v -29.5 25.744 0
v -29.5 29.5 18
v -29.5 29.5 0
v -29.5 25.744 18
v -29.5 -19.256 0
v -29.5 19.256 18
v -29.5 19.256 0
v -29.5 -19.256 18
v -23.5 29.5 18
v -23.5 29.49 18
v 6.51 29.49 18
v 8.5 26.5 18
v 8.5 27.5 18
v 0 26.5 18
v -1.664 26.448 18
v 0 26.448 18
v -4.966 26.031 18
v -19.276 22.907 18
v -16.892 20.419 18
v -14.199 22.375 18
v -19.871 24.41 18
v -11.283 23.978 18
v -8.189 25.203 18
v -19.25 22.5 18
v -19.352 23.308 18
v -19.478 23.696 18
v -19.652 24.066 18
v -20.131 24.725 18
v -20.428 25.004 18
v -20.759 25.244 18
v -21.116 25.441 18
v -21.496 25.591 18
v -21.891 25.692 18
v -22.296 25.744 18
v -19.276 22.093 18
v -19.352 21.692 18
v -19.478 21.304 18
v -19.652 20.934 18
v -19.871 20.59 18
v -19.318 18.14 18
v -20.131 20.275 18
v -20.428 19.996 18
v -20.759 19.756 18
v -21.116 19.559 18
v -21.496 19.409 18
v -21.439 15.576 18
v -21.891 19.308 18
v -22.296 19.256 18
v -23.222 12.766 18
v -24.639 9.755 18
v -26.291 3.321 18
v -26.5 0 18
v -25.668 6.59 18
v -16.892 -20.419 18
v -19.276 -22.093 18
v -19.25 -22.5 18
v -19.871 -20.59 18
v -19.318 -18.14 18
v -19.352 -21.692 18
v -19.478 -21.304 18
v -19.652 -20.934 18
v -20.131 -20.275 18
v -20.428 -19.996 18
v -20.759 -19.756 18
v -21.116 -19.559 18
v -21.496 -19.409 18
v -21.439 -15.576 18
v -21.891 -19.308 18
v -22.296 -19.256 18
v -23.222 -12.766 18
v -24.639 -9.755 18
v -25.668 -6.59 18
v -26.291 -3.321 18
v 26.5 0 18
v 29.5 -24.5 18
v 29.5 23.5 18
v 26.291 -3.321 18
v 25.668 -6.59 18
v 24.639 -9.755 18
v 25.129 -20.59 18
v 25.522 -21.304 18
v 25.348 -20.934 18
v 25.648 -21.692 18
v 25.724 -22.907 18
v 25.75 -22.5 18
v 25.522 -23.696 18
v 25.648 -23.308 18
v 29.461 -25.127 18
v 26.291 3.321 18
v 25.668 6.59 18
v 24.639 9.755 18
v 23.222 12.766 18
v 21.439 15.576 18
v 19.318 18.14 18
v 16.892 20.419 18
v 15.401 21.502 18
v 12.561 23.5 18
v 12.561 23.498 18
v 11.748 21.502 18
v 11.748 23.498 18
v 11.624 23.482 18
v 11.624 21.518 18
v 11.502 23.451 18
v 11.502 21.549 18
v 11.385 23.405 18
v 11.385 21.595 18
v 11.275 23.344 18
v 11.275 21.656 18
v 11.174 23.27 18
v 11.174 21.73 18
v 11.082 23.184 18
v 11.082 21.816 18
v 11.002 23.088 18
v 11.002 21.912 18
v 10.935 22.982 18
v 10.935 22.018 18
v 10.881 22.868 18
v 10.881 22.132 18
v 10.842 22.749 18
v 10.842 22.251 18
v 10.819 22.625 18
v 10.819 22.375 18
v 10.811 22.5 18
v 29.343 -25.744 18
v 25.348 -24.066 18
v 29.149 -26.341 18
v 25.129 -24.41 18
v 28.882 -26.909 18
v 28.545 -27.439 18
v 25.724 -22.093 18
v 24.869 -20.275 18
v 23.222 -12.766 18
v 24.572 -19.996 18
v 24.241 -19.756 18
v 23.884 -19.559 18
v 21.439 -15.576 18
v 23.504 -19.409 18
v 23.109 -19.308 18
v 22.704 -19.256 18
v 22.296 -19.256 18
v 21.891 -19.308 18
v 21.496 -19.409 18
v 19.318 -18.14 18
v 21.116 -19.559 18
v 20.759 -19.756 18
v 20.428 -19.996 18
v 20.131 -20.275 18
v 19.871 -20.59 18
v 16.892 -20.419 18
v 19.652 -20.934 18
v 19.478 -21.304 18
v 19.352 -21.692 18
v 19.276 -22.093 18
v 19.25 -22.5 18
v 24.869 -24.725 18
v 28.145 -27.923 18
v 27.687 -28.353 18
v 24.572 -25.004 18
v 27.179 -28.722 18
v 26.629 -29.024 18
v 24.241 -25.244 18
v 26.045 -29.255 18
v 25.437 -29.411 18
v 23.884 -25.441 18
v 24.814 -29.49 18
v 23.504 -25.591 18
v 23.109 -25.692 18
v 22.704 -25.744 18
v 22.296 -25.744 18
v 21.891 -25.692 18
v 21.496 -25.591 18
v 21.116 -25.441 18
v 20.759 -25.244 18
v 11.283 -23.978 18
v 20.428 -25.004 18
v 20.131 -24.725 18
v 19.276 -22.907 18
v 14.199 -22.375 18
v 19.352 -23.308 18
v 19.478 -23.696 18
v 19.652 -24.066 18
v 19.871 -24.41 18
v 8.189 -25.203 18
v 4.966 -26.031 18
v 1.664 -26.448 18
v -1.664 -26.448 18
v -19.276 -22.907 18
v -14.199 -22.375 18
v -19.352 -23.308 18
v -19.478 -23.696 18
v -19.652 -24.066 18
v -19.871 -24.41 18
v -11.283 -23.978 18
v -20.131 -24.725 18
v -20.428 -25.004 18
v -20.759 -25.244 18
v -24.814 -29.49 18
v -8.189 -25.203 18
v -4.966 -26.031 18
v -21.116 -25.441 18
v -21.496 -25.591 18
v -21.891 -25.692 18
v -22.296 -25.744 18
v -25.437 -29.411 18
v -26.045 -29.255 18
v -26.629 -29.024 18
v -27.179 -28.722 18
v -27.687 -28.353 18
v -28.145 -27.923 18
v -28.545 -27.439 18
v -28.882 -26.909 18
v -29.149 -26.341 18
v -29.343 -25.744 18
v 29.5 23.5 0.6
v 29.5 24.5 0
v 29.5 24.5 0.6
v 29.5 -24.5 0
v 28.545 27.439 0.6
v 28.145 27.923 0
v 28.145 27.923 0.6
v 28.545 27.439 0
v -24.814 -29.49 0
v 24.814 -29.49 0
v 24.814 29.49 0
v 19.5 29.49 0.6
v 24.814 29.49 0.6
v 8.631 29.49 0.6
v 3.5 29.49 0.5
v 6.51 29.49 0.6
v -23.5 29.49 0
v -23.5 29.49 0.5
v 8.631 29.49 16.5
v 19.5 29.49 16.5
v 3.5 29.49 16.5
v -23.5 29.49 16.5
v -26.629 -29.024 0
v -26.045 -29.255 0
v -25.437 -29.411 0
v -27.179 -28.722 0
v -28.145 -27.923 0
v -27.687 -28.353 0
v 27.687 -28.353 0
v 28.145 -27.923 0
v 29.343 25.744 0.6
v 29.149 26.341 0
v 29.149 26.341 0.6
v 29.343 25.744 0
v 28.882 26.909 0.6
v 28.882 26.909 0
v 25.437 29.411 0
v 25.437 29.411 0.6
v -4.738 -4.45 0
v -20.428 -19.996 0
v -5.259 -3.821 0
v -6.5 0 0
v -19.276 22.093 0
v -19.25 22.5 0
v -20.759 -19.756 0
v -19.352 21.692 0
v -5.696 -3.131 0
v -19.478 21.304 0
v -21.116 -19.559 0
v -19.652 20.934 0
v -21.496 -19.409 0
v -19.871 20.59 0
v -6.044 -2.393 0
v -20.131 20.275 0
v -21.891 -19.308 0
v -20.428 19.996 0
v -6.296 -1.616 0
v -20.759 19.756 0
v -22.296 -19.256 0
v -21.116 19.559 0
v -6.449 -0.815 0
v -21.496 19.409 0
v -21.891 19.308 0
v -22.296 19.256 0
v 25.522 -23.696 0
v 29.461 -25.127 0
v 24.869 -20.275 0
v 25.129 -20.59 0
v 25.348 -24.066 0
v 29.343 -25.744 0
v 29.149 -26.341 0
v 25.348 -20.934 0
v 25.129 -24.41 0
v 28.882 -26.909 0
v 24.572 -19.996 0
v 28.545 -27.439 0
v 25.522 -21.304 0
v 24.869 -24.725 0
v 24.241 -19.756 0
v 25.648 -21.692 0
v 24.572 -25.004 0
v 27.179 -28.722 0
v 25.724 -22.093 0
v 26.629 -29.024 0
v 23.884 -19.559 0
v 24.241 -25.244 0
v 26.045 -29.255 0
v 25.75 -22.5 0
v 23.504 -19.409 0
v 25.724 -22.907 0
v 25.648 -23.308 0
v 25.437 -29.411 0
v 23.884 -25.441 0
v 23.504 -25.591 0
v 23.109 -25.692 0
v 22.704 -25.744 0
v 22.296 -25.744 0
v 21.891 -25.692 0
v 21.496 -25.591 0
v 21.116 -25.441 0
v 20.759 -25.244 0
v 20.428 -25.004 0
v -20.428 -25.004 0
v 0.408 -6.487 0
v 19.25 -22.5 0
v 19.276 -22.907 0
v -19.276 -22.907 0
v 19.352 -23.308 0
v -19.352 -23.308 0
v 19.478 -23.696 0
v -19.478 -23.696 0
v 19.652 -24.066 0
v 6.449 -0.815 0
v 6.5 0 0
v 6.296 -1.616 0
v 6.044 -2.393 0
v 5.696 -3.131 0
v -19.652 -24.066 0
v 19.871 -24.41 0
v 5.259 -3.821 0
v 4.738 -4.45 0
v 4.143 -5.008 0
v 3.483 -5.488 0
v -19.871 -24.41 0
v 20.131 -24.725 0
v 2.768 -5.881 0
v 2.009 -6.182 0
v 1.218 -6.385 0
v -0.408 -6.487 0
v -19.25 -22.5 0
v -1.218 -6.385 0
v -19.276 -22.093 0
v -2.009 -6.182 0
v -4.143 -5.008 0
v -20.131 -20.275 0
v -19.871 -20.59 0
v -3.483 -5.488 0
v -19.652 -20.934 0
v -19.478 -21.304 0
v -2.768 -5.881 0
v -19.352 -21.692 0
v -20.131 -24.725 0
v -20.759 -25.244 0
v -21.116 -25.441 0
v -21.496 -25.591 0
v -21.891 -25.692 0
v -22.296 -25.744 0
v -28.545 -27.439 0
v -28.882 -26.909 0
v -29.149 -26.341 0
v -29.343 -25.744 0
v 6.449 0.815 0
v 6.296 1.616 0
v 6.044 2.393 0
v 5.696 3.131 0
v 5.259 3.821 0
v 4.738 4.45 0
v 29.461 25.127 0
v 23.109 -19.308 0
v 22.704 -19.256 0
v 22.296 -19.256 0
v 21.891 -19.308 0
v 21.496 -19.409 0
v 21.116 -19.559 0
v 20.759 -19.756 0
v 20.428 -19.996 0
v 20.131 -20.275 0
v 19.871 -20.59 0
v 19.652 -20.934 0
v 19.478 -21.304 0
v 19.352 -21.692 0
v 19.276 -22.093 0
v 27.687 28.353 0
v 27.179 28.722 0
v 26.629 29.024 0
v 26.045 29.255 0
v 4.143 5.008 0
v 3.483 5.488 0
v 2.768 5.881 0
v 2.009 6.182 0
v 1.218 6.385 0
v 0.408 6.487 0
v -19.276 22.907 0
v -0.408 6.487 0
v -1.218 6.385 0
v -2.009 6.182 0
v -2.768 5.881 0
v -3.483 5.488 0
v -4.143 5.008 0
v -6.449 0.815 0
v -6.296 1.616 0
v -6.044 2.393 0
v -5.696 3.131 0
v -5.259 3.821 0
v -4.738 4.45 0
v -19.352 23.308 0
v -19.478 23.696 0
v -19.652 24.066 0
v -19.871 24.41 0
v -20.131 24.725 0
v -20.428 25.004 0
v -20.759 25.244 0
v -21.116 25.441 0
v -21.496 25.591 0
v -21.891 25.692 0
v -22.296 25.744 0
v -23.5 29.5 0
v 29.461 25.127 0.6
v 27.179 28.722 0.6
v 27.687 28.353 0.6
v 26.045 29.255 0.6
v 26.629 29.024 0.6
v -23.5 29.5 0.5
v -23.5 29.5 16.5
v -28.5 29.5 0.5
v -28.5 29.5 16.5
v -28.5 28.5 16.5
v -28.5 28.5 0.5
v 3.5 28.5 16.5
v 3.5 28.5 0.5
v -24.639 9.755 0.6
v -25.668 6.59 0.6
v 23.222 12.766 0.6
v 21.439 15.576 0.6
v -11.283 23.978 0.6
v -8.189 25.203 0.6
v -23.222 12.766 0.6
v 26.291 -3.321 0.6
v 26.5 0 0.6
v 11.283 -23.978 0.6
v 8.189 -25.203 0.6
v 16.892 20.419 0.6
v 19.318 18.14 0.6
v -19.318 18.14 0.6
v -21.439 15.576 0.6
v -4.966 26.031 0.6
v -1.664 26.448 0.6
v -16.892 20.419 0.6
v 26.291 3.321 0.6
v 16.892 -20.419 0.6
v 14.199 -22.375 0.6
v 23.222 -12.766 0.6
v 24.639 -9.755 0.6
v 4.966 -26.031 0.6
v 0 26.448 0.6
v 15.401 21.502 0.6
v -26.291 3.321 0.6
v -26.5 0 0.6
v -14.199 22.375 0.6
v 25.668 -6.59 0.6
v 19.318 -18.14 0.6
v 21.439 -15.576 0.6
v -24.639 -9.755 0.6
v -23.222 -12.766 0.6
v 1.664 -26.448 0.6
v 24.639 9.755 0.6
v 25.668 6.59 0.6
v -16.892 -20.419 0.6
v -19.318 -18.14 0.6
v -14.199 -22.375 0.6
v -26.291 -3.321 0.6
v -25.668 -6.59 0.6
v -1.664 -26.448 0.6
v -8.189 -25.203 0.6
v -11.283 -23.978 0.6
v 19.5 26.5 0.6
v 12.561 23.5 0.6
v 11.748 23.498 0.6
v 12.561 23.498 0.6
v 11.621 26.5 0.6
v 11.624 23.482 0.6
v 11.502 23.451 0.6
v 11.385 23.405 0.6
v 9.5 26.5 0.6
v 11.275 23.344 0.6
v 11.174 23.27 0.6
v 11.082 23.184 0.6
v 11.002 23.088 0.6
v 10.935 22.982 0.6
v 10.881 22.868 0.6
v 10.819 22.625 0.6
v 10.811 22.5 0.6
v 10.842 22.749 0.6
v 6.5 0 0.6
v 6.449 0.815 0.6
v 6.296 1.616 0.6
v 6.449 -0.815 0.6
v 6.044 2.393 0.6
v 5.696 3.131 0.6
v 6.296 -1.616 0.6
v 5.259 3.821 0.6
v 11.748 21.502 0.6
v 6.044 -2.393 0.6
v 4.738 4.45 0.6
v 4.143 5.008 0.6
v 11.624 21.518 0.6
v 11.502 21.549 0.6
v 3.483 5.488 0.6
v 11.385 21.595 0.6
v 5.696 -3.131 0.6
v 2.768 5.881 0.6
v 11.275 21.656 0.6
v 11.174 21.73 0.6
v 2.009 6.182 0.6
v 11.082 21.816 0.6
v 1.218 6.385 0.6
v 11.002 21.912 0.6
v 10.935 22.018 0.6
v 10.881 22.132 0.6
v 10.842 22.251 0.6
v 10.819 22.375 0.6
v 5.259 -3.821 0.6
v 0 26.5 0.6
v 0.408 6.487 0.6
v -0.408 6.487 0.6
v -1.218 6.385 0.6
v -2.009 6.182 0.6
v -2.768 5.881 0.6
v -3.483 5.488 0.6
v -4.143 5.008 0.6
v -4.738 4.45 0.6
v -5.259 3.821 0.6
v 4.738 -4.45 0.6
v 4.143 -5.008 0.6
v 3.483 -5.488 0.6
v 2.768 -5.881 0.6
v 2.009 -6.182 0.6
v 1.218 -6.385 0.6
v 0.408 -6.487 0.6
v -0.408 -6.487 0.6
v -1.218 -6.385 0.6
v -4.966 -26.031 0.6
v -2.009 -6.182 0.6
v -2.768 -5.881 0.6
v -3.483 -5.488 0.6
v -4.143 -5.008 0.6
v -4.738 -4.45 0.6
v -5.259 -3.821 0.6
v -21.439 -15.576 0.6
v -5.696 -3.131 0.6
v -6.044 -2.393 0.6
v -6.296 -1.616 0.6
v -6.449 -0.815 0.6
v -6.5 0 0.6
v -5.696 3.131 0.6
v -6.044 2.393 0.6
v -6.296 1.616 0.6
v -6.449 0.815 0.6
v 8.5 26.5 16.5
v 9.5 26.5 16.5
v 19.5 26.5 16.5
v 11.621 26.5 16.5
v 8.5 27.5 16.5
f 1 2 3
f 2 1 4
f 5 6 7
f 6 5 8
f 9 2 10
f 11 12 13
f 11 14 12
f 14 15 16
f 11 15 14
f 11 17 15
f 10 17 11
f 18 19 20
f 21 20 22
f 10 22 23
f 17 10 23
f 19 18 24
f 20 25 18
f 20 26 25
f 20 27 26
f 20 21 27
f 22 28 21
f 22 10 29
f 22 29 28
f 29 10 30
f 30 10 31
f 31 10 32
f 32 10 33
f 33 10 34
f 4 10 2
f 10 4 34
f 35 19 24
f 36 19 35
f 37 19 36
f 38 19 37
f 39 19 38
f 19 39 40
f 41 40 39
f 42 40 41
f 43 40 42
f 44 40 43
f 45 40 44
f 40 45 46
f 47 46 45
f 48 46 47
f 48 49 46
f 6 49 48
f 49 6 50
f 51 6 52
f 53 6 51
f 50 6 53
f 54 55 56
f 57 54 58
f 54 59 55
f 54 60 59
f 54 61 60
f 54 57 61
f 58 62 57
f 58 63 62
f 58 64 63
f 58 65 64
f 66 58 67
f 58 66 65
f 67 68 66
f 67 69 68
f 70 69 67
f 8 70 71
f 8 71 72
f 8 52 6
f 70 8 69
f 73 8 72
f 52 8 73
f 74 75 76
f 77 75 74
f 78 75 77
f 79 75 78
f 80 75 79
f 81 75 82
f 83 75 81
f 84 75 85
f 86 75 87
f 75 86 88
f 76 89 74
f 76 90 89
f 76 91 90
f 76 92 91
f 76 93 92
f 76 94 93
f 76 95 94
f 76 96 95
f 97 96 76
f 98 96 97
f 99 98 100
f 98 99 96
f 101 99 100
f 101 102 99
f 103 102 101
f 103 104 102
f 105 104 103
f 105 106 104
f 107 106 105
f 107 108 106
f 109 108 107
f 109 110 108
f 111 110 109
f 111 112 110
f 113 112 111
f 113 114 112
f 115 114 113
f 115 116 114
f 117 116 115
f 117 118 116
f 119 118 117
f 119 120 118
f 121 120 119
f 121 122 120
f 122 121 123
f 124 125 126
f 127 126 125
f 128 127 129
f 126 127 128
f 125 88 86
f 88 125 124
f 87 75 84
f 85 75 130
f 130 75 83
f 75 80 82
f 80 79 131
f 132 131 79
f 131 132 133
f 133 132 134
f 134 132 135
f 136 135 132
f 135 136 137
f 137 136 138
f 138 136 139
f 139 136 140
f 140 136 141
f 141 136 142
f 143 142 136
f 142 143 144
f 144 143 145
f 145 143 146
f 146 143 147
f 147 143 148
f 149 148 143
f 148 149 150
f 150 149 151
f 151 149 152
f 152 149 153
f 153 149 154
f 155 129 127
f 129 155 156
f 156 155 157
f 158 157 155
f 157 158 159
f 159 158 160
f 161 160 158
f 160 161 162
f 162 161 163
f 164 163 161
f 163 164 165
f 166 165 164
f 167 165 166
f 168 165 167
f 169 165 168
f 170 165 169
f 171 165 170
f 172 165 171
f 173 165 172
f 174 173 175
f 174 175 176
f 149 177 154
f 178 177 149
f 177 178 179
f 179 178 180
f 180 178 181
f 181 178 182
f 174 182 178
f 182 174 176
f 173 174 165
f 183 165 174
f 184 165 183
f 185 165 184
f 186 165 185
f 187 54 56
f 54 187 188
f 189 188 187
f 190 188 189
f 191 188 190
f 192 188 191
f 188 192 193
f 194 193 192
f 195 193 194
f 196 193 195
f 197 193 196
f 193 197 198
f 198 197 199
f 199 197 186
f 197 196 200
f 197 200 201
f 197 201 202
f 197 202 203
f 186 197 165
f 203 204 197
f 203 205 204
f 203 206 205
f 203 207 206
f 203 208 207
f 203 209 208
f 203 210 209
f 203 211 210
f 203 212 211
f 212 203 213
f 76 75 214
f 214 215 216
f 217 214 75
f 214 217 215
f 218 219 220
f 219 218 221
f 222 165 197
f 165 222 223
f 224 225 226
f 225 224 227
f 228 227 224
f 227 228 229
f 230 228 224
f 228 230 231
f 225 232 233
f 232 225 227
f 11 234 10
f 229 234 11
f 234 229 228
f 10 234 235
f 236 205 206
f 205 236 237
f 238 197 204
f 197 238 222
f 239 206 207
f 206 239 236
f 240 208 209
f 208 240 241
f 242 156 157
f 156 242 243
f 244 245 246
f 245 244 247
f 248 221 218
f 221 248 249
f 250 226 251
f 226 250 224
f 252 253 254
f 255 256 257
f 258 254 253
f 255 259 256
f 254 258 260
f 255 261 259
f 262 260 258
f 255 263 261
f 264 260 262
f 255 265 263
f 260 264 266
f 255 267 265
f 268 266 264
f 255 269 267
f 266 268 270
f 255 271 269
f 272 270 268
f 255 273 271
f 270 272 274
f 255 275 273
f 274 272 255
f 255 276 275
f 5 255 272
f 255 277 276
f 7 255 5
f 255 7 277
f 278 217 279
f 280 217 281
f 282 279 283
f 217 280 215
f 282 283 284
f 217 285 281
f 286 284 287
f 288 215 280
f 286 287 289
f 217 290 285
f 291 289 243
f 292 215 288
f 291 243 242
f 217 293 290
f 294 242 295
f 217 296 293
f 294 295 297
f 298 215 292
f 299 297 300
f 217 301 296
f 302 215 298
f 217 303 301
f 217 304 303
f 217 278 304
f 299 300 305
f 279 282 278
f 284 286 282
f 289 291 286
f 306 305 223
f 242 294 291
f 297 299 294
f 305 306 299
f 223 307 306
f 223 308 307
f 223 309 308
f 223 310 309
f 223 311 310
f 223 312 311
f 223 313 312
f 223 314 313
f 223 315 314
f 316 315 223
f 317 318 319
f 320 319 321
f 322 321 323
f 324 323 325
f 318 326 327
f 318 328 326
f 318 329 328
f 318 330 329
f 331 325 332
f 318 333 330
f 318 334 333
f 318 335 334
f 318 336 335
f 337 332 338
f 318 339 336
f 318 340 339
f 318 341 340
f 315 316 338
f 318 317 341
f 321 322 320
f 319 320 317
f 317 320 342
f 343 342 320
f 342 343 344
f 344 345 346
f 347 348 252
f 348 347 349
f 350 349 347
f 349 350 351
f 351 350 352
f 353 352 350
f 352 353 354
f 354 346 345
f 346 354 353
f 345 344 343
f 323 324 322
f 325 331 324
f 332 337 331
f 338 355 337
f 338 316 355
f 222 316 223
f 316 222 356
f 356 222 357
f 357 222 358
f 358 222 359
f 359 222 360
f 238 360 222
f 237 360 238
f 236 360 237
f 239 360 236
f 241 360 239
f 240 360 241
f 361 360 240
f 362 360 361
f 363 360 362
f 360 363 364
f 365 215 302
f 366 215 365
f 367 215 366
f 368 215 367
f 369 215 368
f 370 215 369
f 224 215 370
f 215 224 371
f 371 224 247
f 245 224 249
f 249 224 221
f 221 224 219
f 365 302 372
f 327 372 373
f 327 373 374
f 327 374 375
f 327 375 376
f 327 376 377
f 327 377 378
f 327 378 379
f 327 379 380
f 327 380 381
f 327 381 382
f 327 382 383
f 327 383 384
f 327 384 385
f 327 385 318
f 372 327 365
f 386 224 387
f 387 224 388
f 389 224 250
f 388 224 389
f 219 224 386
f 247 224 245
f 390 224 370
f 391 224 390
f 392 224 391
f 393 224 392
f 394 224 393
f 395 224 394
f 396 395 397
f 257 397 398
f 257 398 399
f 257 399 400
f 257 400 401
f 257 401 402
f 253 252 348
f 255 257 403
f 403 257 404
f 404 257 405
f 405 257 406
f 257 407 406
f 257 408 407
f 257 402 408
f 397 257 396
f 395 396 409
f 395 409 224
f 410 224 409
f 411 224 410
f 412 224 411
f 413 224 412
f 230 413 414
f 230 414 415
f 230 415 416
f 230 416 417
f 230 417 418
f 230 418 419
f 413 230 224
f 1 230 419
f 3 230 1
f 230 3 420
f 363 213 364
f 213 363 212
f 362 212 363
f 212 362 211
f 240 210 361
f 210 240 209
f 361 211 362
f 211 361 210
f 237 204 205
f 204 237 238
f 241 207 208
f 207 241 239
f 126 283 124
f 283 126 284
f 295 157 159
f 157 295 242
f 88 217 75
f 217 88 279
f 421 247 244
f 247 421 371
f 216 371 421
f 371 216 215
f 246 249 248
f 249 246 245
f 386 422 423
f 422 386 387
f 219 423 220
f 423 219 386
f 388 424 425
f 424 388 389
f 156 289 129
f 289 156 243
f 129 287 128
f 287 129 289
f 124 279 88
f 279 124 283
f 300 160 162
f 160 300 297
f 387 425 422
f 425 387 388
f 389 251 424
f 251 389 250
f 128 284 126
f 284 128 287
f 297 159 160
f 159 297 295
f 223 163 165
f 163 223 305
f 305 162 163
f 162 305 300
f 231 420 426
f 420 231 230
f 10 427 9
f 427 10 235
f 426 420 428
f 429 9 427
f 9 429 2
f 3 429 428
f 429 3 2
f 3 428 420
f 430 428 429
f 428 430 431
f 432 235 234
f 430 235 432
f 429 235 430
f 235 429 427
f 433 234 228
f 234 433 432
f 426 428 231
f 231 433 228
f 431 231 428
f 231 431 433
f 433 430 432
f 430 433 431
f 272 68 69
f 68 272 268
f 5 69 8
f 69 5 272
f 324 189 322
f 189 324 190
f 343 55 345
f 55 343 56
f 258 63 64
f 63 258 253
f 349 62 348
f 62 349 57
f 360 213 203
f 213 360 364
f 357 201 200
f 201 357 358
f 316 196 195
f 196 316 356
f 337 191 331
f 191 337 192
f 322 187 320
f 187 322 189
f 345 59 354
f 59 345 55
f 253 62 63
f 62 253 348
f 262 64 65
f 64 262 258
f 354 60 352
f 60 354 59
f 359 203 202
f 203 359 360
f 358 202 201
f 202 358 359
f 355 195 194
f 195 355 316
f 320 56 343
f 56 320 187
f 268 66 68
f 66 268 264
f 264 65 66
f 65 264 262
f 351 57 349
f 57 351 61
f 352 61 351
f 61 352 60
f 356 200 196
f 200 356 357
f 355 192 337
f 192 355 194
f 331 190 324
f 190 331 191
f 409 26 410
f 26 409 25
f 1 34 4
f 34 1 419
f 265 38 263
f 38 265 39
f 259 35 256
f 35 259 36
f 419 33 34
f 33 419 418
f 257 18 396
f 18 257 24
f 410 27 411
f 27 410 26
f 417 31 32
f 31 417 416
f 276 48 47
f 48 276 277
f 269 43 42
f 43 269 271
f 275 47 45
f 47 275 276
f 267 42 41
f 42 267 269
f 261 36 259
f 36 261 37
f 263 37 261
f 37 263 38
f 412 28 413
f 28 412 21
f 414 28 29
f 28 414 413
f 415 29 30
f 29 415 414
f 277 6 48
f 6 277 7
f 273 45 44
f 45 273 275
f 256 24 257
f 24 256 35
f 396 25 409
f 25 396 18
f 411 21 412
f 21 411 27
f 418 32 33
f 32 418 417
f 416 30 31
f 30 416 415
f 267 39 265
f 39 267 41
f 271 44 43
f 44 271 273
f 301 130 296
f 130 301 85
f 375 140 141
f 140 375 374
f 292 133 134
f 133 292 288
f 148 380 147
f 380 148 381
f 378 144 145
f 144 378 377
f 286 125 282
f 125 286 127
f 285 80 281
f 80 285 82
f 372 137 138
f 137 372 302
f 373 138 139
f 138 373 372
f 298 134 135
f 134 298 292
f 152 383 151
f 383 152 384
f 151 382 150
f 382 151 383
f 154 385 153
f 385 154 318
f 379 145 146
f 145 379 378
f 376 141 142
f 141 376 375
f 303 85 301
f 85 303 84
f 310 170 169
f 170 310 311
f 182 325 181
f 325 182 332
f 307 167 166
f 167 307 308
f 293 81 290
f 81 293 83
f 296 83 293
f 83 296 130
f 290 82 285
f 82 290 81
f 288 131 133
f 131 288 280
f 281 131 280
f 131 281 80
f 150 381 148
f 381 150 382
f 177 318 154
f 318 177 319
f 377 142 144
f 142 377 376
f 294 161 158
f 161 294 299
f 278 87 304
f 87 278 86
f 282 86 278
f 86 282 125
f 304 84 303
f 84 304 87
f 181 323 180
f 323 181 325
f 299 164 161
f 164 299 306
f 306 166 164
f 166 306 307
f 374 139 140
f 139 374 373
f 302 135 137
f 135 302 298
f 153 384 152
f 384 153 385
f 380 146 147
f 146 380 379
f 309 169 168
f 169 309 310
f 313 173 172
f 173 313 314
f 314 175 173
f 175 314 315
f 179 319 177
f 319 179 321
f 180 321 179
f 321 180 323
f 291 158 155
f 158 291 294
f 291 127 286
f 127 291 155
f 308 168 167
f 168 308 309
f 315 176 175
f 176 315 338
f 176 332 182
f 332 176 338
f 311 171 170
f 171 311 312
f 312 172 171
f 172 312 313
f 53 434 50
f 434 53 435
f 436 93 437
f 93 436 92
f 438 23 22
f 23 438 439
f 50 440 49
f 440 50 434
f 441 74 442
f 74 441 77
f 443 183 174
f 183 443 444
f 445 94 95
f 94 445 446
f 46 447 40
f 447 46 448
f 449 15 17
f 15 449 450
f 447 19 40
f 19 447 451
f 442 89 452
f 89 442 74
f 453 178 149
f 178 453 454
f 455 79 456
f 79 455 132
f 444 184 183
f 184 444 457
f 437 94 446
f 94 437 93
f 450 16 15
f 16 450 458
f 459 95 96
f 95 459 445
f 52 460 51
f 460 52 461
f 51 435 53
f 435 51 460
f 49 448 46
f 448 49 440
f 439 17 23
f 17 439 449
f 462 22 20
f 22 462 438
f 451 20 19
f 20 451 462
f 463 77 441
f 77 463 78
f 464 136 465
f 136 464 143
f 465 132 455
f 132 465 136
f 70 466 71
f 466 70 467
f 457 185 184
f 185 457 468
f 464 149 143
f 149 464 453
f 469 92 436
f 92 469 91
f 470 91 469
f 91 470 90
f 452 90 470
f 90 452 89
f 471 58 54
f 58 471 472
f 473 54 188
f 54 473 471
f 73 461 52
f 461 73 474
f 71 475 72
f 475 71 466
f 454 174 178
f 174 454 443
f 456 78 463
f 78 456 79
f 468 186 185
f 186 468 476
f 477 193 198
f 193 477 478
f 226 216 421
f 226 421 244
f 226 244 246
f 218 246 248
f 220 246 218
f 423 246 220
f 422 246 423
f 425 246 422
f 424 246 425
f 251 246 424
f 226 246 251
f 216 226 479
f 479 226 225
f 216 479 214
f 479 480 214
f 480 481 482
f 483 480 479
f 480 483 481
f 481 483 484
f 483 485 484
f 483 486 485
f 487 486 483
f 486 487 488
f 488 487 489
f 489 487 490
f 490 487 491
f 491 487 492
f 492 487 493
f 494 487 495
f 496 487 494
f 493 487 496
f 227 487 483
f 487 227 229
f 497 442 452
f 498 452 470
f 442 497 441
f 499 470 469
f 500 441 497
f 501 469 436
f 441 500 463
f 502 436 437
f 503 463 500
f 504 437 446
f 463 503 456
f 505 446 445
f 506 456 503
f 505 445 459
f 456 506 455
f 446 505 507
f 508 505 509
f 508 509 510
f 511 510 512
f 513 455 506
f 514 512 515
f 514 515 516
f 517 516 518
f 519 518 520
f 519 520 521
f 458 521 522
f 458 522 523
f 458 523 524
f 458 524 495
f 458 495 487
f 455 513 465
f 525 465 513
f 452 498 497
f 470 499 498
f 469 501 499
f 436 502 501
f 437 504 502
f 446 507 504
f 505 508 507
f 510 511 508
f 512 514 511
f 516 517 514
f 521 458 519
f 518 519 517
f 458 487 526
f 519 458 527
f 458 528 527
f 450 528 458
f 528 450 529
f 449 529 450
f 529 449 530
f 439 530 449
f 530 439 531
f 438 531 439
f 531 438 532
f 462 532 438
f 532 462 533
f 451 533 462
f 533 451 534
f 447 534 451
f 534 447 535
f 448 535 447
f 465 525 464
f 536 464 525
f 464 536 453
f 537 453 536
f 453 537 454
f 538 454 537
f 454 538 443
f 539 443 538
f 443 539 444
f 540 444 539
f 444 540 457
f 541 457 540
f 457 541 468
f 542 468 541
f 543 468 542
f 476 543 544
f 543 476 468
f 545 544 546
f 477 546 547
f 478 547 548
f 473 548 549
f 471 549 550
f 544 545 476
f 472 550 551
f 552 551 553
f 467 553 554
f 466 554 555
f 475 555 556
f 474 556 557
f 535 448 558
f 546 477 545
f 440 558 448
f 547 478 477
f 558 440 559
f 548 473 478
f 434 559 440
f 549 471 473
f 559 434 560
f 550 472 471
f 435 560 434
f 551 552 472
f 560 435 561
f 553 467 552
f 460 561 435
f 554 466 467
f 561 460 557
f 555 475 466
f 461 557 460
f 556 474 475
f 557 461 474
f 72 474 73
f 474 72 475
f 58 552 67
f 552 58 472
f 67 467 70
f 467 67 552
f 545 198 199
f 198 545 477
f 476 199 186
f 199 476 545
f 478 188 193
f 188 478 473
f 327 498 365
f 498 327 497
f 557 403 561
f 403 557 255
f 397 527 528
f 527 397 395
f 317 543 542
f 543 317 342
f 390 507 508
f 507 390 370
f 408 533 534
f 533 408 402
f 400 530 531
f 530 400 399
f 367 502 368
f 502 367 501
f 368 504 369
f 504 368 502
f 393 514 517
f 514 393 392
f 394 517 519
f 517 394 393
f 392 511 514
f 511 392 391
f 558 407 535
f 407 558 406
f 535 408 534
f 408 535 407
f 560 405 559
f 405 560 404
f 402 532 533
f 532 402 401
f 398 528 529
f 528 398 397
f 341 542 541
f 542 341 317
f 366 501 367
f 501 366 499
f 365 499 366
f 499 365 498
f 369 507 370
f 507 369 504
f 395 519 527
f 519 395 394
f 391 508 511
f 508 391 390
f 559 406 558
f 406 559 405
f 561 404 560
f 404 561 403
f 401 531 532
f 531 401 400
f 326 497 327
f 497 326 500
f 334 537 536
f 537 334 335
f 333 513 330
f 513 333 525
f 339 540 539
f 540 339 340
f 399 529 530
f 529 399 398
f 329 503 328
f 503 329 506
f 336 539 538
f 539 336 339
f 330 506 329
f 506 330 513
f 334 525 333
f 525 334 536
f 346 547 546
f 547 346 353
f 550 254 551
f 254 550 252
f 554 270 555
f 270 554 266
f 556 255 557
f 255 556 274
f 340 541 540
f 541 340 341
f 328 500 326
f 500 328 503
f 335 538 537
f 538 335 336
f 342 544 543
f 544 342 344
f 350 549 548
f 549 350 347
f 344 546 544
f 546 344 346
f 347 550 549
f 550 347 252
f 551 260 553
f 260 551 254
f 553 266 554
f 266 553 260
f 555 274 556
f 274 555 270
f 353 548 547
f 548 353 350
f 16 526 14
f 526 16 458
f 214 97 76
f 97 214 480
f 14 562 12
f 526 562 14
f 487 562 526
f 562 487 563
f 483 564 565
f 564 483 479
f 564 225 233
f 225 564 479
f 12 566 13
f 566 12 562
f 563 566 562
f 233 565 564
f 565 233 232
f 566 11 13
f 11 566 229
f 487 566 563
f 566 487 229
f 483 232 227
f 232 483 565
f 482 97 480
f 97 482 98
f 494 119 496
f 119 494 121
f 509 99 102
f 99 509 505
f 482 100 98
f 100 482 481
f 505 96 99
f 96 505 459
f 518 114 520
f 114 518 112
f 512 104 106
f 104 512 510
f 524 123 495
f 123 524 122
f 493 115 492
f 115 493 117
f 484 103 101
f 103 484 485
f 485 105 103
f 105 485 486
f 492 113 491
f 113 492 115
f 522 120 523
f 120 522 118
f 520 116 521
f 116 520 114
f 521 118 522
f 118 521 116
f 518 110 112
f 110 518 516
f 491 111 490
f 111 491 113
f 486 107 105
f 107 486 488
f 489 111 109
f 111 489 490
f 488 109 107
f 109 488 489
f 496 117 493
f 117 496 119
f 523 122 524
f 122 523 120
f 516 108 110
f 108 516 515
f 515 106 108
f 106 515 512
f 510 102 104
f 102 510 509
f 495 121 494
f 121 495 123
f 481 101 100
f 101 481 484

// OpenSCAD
$fn = 50;


union() {
	difference() {
		union() {
			translate(v = [0, 0, 0]) {
				rotate(a = [0, 0, 0]) {
					hull() {
						translate(v = [-24.5000000000, 24.5000000000, 0]) {
							rotate(a = [0, 0, 0]) {
								translate(v = [0, 0, 0]) {
									rotate(a = [0, 0, 0]) {
										cylinder(h = 18, r = 5);
									}
								}
							}
						}
						translate(v = [24.5000000000, 24.5000000000, 0]) {
							rotate(a = [0, 0, 0]) {
								translate(v = [0, 0, 0]) {
									rotate(a = [0, 0, 0]) {
										cylinder(h = 18, r = 5);
									}
								}
							}
						}
						translate(v = [-24.5000000000, -24.5000000000, 0]) {
							rotate(a = [0, 0, 0]) {
								translate(v = [0, 0, 0]) {
									rotate(a = [0, 0, 0]) {
										cylinder(h = 18, r = 5);
									}
								}
							}
						}
						translate(v = [24.5000000000, -24.5000000000, 0]) {
							rotate(a = [0, 0, 0]) {
								translate(v = [0, 0, 0]) {
									rotate(a = [0, 0, 0]) {
										cylinder(h = 18, r = 5);
									}
								}
							}
						}
					}
				}
			}
			translate(v = [-29.5000000000, 23.5000000000, 0]) {
				rotate(a = [0, 0, 0]) {
					cube(size = [6, 6, 18]);
				}
			}
		}
		union() {
			#translate(v = [-28.5000000000, 28.5000000000, 0.5000000000]) {
				rotate(a = [0, 0, 0]) {
					cube(size = [32, 1, 16]);
				}
			}
			translate(v = [-30.0000000000, -22.5000000000, -125]) {
				rotate(a = [0, 0, 0]) {
					hull() {
						translate(v = [7.5000000000, 0, 0]) {
							rotate(a = [0, 0, 0]) {
								translate(v = [0, 0, 0]) {
									rotate(a = [0, 0, 0]) {
										cylinder(h = 250, r = 3.2500000000);
									}
								}
							}
						}
						translate(v = [-7.5000000000, 0, 0]) {
							rotate(a = [0, 0, 0]) {
								translate(v = [0, 0, 0]) {
									rotate(a = [0, 0, 0]) {
										cylinder(h = 250, r = 3.2500000000);
									}
								}
							}
						}
					}
				}
			}
			translate(v = [-30.0000000000, 22.5000000000, -125]) {
				rotate(a = [0, 0, 0]) {
					hull() {
						translate(v = [7.5000000000, 0, 0]) {
							rotate(a = [0, 0, 0]) {
								translate(v = [0, 0, 0]) {
									rotate(a = [0, 0, 0]) {
										cylinder(h = 250, r = 3.2500000000);
									}
								}
							}
						}
						translate(v = [-7.5000000000, 0, 0]) {
							rotate(a = [0, 0, 0]) {
								translate(v = [0, 0, 0]) {
									rotate(a = [0, 0, 0]) {
										cylinder(h = 250, r = 3.2500000000);
									}
								}
							}
						}
					}
				}
			}
			translate(v = [22.5000000000, -22.5000000000, -125.0000000000]) {
				rotate(a = [0, 0, 0]) {
					cylinder(h = 250, r = 3.2500000000);
				}
			}
			translate(v = [0, 0, 0.6000000000]) {
				rotate(a = [0, 0, 0]) {
					cylinder(h = 20.4000000000, r = 26.5000000000);
				}
			}
			translate(v = [0, 0, -9.0000000000]) {
				rotate(a = [0, 0, 0]) {
					cylinder(h = 18, r = 6.5000000000);
				}
			}
			translate(v = [0.0000000000, 23.5000000000, 0.6000000000]) {
				rotate(a = [0, 0, 0]) {
					cube(size = [29.5000000000, 3, 20.4000000000]);
				}
			}
			translate(v = [19.5000000000, 23.5000000000, 0.6000000000]) {
				rotate(a = [0, 0, 0]) {
					cube(size = [10, 6, 20.4000000000]);
				}
			}
			translate(v = [8.5000000000, 23.5000000000, 16.5000000000]) {
				rotate(a = [0, 0, 0]) {
					cube(size = [21, 6, 1.5000000000]);
				}
			}
			translate(v = [5.7500000000, 30.2500000000, 0.6000000000]) {
				rotate(a = [0, 0, -45]) {
					cube(size = [7.5000000000, 1.5000000000, 20.4000000000]);
				}
			}
			translate(v = [5.0610000000, 21.5000000000, 0.6000000000]) {
				rotate(a = [0, 0, 0]) {
					cube(size = [7.5000000000, 2, 17.4000000000]);
				}
			}
		}
	}
	union() {
		translate(v = [14.3110000000, 22.5000000000, 0]) {
			rotate(a = [0, 0, 0]) {
				hull() {
					translate(v = [2.5000000000, 0, 0]) {
						rotate(a = [0, 0, 0]) {
							#translate(v = [0, 0, 0]) {
								rotate(a = [0, 0, 0]) {
									cylinder(h = 18, r = 1.0000000000);
								}
							}
						}
					}
					translate(v = [-2.5000000000, 0, 0]) {
						rotate(a = [0, 0, 0]) {
							#translate(v = [0, 0, 0]) {
								rotate(a = [0, 0, 0]) {
									cylinder(h = 18, r = 1.0000000000);
								}
							}
						}
					}
				}
			}
		}
	}
}
